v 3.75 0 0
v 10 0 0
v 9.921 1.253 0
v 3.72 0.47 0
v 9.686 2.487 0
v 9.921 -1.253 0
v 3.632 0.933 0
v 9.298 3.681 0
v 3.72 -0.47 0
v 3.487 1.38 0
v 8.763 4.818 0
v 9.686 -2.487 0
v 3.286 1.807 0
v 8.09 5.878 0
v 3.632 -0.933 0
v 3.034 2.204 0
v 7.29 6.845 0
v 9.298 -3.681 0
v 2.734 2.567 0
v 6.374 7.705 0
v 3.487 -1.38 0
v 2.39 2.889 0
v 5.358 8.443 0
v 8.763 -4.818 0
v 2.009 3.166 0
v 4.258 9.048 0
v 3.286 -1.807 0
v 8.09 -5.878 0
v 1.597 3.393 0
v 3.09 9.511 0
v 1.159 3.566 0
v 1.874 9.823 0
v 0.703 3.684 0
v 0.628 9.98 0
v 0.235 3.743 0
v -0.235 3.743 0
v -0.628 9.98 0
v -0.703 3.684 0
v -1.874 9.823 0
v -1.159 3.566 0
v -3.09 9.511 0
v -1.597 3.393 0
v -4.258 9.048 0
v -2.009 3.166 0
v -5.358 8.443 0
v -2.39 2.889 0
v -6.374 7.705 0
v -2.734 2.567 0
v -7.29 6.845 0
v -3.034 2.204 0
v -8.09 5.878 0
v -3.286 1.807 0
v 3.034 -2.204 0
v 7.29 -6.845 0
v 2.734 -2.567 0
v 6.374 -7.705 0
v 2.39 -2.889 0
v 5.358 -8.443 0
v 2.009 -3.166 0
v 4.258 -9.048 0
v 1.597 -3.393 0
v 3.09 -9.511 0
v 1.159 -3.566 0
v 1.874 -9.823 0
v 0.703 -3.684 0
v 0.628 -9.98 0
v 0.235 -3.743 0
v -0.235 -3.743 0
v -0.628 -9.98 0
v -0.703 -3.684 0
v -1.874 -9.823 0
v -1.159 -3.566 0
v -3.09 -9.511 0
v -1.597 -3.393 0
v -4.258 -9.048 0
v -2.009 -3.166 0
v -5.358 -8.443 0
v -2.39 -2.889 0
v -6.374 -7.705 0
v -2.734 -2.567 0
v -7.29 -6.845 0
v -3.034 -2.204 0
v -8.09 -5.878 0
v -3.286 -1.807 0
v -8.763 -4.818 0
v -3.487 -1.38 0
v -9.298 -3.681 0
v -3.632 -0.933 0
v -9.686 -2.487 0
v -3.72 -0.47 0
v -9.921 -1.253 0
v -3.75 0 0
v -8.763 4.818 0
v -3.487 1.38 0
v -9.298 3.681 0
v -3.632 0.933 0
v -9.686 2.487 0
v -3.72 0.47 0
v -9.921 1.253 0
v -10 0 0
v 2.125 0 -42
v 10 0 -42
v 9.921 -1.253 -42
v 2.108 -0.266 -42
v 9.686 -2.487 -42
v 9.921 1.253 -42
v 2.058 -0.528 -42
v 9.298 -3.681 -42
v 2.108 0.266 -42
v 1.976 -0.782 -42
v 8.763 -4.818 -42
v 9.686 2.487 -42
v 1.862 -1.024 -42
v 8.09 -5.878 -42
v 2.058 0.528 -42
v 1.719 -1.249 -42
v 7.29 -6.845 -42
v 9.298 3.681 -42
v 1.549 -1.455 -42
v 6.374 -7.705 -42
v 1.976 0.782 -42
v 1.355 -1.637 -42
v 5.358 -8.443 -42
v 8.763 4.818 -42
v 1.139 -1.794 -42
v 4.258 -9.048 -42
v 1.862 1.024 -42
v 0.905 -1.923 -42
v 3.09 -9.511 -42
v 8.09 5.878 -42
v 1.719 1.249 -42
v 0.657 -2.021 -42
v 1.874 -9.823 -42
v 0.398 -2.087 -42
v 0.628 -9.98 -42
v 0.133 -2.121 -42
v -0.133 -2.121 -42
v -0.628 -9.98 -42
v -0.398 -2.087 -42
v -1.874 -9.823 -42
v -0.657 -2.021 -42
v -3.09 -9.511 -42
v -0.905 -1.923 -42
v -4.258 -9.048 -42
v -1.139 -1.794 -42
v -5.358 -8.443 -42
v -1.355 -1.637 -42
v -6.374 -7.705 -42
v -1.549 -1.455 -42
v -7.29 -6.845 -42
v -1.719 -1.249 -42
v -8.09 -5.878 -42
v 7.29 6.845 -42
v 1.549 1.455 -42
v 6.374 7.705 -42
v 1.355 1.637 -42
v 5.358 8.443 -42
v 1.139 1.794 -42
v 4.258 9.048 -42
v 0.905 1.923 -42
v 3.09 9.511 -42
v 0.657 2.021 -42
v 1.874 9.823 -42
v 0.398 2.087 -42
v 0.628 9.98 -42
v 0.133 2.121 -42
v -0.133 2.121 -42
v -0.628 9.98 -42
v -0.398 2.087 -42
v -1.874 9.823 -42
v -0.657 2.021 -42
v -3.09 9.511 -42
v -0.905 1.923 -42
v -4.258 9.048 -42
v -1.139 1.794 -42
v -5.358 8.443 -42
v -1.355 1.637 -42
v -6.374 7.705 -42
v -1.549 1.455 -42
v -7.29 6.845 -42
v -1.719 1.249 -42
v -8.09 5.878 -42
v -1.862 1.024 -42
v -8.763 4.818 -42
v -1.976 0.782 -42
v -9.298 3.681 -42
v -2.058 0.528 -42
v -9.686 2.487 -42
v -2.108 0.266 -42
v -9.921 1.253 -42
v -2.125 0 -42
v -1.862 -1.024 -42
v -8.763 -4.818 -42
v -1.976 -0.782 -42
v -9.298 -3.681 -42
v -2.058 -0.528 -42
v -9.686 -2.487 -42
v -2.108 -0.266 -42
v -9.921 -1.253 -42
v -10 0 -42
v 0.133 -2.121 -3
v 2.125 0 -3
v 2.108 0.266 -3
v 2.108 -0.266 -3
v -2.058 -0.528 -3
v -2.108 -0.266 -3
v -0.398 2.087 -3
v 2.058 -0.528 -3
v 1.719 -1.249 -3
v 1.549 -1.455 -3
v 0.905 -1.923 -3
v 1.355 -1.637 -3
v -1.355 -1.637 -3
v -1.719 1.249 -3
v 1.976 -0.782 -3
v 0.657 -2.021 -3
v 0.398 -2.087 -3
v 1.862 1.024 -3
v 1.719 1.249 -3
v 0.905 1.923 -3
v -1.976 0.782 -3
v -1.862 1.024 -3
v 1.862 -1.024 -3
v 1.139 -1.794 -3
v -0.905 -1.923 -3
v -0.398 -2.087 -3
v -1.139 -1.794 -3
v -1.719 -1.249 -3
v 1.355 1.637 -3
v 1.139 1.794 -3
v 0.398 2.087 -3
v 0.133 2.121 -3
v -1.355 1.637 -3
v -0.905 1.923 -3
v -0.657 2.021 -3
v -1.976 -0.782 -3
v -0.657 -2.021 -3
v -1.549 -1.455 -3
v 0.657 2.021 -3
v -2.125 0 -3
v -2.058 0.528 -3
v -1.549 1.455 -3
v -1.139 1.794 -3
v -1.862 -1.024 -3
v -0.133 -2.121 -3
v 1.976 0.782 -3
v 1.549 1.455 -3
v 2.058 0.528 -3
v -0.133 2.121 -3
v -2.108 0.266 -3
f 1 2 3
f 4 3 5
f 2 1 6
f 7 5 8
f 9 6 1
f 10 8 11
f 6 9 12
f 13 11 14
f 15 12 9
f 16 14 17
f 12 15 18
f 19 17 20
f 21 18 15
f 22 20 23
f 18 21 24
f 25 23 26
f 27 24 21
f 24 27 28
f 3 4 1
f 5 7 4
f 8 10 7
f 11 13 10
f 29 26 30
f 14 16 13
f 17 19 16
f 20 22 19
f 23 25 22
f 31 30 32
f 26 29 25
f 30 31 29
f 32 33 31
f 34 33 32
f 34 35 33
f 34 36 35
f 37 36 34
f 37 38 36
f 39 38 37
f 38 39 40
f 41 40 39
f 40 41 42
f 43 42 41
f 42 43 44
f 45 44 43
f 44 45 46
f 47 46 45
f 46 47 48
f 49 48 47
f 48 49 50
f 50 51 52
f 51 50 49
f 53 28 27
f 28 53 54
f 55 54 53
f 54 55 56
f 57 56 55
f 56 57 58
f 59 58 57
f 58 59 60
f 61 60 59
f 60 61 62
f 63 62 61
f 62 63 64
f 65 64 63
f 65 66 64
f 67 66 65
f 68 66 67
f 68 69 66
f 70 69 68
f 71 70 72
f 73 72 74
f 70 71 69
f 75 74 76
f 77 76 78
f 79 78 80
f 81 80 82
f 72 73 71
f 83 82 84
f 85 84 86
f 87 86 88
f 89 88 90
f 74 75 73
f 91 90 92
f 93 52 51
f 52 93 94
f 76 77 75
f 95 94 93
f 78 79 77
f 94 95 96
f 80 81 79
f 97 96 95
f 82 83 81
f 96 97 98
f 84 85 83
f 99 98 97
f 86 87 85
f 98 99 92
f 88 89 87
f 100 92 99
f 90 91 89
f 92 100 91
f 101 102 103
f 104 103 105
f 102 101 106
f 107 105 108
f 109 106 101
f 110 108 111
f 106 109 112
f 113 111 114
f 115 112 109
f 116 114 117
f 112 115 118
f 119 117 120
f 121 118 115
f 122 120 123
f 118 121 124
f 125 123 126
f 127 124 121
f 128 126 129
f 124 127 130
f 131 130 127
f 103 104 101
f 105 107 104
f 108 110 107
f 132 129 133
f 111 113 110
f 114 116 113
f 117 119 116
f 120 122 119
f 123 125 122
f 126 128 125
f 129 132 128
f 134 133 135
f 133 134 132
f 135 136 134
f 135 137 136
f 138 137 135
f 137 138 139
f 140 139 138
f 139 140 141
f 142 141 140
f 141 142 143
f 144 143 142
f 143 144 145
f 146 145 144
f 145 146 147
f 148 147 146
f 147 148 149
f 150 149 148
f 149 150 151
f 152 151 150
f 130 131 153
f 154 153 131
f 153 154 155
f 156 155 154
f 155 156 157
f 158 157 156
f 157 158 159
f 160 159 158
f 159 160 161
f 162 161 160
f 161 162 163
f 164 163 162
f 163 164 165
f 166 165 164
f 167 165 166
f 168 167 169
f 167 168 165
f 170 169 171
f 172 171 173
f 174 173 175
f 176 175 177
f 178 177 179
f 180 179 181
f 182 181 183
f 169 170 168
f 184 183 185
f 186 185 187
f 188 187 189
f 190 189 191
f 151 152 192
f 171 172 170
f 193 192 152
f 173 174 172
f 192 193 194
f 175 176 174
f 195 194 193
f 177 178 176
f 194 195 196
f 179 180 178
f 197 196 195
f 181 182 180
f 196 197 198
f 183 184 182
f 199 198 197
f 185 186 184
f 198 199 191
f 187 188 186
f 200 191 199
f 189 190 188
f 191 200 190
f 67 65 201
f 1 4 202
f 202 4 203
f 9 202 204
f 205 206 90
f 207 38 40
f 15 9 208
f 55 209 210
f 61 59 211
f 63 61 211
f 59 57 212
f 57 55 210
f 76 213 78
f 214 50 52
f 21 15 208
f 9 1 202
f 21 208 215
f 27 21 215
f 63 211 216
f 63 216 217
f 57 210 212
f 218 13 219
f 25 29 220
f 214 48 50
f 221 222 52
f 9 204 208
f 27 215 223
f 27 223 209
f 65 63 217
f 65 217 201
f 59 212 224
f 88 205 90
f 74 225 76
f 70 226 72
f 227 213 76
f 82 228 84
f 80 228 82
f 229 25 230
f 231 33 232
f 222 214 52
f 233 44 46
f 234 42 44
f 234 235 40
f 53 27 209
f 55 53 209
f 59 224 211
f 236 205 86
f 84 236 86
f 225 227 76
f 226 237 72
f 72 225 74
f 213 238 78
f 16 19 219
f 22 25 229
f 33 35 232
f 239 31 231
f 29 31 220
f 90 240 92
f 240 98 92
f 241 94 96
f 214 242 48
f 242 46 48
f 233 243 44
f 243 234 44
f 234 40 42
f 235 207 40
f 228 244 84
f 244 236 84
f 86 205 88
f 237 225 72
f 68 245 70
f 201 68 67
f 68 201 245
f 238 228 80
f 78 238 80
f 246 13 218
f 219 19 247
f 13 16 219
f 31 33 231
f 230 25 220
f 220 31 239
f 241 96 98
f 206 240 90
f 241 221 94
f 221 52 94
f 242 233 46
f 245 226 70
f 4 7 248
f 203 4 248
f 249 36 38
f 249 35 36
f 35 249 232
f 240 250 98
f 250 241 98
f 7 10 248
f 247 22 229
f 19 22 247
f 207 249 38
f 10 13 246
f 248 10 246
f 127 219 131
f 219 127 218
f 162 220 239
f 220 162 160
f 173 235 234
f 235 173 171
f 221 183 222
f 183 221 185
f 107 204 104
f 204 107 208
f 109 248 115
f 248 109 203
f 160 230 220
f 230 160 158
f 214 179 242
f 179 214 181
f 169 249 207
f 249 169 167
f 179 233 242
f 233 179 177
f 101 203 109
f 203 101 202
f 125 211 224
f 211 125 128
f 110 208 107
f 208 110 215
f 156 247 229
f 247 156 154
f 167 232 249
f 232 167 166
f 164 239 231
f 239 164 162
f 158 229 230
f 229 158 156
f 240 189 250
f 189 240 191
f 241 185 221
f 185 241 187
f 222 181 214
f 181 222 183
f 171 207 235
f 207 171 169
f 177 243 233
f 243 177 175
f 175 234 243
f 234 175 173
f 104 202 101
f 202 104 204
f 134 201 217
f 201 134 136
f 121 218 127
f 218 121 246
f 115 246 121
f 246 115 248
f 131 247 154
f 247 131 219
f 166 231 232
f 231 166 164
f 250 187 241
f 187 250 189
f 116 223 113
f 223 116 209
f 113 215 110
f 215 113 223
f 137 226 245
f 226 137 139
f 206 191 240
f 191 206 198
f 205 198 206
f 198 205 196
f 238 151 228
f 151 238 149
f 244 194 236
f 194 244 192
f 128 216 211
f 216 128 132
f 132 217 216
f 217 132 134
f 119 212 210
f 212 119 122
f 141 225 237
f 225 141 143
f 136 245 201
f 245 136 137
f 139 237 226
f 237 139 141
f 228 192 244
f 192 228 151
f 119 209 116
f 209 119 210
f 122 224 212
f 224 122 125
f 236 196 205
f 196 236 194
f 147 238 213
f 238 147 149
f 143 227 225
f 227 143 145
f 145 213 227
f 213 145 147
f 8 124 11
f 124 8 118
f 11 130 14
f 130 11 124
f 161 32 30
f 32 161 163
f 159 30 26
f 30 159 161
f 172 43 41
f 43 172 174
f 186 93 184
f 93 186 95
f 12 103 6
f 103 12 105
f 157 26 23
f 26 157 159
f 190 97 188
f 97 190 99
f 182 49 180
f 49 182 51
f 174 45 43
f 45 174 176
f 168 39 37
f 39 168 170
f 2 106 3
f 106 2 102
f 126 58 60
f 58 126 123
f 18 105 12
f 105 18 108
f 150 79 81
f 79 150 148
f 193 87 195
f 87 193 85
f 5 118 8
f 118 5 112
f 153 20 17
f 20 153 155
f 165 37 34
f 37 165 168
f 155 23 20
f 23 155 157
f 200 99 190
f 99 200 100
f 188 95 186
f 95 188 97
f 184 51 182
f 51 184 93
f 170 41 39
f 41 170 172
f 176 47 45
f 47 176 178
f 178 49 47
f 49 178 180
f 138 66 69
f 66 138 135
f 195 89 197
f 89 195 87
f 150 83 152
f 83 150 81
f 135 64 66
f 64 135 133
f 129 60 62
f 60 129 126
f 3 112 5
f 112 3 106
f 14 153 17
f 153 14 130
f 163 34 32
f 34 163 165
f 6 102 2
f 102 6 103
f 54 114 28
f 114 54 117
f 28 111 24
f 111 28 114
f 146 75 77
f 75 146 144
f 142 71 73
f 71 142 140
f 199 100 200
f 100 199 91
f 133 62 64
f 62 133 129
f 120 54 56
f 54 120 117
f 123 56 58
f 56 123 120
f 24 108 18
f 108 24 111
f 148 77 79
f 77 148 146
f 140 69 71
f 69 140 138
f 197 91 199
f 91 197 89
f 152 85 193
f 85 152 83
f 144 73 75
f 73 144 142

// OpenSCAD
$fn = 50;


difference() {
	union() {
		translate(v = [0, 0, -42.0000000000]) {
			cylinder(h = 42, r = 10.0000000000);
		}
		cylinder(h = 0, r = 20.0000000000);
	}
	union() {
		translate(v = [0, 0, 0]) {
			rotate(a = [0, 0, 0]) {
				difference() {
					union() {
						#translate(v = [0, 0, -42.0000000000]) {
							cylinder(h = 42, r = 2.0000000000);
						}
						#translate(v = [0, 0, -3]) {
							cylinder(h = 3, r1 = 2.1250000000, r2 = 3.7500000000);
						}
						#translate(v = [0, 0, -42.0000000000]) {
							cylinder(h = 42, r = 2.1250000000);
						}
						#translate(v = [0, 0, -42.0000000000]) {
							cylinder(h = 42, r = 2.0000000000);
						}
					}
					union();
				}
			}
		}
	}
}
